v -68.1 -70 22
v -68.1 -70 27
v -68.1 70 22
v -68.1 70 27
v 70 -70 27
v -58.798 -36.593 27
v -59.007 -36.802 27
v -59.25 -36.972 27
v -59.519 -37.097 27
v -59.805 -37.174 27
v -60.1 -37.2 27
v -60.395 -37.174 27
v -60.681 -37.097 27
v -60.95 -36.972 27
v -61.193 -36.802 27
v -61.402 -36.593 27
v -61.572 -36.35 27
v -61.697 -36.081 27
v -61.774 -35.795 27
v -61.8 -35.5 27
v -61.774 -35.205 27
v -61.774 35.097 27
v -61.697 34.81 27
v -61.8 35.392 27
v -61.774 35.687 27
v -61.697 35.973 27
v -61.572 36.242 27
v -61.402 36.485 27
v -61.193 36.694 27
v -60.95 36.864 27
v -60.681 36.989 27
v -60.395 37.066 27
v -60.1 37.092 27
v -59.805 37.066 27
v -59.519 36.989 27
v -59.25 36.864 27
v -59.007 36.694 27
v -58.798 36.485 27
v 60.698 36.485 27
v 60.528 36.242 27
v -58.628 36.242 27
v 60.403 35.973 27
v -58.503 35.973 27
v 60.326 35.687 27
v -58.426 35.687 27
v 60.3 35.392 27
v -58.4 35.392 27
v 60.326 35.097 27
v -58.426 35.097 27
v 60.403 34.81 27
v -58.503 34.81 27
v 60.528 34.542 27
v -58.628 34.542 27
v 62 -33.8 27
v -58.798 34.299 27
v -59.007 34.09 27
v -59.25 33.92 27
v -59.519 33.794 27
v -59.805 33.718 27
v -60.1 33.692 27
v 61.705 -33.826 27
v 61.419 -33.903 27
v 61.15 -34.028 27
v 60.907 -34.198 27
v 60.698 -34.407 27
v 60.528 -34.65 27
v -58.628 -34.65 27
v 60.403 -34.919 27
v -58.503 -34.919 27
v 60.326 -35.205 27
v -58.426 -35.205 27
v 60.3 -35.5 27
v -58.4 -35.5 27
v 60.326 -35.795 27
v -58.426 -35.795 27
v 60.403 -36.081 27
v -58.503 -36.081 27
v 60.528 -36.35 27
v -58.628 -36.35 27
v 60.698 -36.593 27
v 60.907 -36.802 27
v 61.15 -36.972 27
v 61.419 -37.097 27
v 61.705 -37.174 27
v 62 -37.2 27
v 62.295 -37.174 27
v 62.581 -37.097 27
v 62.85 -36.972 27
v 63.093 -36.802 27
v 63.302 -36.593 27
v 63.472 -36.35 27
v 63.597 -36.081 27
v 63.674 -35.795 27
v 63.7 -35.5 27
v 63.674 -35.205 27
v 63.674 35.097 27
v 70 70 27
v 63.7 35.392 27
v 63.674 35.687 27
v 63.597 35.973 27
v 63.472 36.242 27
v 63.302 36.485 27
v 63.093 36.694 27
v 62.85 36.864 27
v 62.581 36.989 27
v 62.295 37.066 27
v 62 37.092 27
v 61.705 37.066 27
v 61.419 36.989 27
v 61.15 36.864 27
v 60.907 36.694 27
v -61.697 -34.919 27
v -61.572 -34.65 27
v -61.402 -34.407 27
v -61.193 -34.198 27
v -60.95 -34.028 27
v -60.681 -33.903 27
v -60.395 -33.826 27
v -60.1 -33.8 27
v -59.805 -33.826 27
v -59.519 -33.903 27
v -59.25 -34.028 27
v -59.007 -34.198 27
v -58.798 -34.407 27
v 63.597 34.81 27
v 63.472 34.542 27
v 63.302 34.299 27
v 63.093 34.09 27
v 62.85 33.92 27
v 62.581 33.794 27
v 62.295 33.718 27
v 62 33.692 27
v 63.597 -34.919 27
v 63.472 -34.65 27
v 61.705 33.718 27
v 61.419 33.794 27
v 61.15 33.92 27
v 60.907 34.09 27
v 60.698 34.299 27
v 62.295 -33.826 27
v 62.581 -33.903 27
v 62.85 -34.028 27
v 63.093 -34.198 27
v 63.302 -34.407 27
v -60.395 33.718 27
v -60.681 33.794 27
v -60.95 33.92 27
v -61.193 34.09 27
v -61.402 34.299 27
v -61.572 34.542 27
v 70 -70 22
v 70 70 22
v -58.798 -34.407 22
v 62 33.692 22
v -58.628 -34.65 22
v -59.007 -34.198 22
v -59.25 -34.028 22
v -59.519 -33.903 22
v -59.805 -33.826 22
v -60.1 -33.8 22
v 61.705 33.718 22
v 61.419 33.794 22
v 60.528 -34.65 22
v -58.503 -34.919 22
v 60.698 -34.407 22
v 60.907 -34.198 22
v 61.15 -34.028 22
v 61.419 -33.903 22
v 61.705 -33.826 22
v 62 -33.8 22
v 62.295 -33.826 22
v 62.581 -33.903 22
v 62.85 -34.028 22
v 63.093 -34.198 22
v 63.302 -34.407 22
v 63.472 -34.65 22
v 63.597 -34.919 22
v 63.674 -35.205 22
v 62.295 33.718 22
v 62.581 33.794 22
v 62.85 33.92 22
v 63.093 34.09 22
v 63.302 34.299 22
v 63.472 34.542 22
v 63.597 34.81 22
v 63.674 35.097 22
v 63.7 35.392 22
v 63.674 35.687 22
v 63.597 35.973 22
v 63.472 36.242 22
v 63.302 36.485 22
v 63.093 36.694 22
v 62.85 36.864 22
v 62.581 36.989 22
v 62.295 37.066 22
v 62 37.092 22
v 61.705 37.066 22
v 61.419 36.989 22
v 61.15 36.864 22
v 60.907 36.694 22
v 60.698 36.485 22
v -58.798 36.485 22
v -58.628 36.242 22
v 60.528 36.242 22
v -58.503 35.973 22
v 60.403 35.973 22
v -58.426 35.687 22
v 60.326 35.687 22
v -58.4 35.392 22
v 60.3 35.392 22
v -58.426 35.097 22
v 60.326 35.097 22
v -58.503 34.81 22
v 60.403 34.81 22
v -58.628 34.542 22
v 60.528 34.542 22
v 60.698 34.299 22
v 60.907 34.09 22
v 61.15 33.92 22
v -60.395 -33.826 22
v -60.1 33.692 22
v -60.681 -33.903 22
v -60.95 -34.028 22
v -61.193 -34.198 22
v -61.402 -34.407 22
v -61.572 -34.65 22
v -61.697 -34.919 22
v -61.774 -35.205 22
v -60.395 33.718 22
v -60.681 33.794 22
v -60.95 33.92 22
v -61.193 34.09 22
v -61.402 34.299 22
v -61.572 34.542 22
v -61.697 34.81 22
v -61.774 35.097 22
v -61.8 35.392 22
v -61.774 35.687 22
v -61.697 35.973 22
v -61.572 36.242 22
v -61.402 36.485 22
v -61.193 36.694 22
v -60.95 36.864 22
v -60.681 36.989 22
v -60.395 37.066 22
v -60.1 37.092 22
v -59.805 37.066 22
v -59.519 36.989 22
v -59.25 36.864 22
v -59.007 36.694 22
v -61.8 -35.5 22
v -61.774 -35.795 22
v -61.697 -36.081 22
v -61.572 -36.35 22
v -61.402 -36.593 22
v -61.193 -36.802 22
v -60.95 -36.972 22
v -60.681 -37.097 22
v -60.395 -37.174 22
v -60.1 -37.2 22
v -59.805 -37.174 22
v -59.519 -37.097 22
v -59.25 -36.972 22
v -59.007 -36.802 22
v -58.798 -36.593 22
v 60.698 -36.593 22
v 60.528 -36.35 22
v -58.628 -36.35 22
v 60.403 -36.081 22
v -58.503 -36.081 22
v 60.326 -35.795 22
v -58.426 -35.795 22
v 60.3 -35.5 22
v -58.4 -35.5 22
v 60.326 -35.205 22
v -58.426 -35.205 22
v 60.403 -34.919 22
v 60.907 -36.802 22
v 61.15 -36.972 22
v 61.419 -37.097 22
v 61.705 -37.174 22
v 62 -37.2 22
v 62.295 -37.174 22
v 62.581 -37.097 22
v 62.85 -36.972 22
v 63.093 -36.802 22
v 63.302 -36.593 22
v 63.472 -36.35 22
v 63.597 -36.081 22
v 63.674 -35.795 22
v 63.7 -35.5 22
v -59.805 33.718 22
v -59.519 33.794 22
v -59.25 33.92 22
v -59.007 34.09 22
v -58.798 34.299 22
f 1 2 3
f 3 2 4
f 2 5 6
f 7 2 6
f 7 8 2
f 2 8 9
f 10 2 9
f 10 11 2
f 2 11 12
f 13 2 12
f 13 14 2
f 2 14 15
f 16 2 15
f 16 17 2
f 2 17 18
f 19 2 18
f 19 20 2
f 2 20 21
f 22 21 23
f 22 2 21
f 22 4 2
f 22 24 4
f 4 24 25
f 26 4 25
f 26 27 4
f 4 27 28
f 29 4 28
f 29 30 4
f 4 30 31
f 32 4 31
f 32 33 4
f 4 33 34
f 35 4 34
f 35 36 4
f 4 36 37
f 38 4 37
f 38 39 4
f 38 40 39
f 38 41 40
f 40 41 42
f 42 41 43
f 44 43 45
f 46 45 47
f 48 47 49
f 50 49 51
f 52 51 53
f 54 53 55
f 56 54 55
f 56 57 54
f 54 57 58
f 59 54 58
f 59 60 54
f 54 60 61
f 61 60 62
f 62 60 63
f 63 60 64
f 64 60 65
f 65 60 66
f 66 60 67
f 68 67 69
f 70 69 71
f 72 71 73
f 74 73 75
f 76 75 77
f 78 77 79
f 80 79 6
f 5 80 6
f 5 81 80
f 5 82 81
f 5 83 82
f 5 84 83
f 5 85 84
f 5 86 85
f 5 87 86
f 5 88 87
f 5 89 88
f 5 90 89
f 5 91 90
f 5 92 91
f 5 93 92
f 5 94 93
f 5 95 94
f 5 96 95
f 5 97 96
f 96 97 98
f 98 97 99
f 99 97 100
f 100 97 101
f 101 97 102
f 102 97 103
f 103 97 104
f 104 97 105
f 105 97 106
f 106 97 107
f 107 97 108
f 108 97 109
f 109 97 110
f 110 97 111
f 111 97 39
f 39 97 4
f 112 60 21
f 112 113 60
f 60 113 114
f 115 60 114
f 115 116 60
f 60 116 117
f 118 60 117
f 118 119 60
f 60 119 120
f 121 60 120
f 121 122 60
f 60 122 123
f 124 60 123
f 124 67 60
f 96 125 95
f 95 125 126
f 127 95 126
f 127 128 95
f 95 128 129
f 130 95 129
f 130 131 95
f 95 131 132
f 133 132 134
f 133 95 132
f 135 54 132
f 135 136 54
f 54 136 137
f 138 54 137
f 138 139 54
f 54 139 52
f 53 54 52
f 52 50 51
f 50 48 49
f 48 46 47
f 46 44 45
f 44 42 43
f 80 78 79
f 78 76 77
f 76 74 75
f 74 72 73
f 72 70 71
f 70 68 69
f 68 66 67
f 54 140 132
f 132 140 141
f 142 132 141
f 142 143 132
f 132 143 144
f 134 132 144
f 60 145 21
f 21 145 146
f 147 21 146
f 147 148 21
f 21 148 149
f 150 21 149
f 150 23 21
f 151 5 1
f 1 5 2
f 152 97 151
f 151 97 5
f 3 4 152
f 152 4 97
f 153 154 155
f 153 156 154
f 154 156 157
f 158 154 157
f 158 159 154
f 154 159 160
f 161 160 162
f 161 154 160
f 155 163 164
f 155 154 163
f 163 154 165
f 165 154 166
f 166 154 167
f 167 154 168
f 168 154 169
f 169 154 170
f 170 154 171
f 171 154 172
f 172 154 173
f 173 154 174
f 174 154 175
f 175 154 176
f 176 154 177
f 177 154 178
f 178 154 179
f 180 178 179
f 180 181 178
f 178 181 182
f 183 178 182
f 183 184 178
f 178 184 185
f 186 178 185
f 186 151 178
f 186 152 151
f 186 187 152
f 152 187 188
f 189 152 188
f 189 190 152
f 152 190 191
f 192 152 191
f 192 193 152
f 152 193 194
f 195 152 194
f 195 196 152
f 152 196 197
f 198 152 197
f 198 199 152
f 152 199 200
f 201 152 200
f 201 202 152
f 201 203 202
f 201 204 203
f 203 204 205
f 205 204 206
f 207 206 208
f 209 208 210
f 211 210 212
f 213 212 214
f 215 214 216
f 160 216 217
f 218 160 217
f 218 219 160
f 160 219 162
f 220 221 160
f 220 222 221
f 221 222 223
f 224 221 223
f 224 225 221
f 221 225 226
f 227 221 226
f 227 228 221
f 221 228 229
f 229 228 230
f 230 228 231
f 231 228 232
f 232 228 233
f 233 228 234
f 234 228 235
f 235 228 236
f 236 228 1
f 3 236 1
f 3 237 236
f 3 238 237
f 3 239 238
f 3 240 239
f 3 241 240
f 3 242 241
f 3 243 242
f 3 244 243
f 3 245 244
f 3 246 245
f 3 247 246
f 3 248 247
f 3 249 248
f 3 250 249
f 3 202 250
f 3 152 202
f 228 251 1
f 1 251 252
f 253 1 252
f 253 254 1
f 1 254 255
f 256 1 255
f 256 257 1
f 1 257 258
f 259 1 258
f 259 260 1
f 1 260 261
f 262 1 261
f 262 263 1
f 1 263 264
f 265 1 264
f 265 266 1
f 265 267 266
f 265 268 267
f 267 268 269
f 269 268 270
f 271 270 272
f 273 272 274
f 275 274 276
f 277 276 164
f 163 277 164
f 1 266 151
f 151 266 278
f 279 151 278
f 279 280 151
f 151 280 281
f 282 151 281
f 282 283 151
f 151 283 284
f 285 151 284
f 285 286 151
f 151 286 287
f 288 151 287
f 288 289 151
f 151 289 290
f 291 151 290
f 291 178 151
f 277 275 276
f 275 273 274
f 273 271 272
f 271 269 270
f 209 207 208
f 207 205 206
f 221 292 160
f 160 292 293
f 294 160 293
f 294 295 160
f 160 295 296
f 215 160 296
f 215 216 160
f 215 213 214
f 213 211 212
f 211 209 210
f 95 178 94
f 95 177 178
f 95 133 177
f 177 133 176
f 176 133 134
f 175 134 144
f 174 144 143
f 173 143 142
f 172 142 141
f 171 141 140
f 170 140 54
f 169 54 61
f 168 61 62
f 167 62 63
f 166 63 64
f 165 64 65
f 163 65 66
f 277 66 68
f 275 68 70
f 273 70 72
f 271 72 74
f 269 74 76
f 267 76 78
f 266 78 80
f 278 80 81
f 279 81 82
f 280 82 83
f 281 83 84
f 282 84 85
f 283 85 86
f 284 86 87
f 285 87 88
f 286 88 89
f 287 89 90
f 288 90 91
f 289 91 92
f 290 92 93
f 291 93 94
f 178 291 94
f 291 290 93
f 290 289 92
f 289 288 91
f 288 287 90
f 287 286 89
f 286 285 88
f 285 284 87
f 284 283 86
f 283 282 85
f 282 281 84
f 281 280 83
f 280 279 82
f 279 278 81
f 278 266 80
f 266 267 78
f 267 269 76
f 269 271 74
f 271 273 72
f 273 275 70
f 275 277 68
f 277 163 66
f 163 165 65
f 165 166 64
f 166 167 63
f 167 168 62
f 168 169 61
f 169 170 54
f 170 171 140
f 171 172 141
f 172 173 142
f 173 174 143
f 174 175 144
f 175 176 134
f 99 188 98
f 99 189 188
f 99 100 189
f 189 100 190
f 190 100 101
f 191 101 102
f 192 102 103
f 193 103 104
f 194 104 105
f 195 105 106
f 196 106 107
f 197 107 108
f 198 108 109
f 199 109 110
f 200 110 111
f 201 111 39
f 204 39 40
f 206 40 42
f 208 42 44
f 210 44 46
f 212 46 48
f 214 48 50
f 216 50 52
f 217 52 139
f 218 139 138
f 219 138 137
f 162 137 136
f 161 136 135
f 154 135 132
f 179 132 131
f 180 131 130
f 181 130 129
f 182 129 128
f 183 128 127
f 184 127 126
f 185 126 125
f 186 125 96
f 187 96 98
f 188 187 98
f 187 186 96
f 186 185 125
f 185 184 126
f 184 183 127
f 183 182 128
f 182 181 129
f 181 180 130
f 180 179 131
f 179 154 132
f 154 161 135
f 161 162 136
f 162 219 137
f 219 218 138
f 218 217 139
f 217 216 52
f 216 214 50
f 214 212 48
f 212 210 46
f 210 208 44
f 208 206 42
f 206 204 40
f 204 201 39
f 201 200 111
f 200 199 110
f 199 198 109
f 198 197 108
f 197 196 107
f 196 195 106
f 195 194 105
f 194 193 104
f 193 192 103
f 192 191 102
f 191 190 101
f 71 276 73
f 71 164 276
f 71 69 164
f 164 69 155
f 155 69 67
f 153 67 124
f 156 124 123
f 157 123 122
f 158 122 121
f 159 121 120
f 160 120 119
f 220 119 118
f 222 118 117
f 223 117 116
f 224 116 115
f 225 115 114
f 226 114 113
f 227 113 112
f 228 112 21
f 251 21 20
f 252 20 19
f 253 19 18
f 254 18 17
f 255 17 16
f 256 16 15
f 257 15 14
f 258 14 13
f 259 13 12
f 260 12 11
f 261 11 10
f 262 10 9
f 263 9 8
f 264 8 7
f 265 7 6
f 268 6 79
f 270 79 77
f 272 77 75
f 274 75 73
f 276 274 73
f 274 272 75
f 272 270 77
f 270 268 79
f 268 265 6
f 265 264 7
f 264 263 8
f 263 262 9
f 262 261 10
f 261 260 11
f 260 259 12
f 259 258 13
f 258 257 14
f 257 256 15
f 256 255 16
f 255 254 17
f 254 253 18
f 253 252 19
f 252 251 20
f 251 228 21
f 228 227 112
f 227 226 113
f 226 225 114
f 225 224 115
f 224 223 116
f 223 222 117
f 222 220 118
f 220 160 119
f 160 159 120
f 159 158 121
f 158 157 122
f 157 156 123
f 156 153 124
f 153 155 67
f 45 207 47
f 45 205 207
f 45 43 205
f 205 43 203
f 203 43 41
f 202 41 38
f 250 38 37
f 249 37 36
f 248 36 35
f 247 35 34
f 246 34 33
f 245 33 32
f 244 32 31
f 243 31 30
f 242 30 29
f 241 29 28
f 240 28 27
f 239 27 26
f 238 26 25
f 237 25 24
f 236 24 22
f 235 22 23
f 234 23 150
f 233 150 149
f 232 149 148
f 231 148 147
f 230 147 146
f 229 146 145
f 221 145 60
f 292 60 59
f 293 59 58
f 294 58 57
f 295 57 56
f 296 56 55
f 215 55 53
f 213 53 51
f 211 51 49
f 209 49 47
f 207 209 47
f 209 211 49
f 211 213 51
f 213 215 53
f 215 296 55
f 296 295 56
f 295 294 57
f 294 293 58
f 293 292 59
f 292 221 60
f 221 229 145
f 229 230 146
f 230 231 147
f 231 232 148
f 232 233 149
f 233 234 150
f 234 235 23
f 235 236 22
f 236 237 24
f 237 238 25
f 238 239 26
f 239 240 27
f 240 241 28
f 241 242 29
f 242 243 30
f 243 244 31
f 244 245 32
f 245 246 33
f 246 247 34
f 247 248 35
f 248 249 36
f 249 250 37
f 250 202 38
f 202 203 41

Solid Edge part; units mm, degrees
sketch "Sketch1" plane through (0, 0, 22) normal (0, 0, 1) x (1, 0, 0)
  circle A0 centre (62, 35.3919) radius 1.7
  circle A1 centre (62, -35.5) radius 1.7
  circle A2 centre (-60.1, -35.5) radius 1.7
  line L0 (-68.1, -70) -> (70, -70)
  line L1 (70, -70) -> (70, 70)
  line L2 (70, 70) -> (-68.1, 70)
  line L3 (-68.1, 70) -> (-68.1, -70)
  circle A3 centre (-60.1, 35.3919) radius 1.7
  dimension "D1" = 8
  dimension "D2" = 8
  dimension "D3" = 140
  dimension "D4" = 3.4
extrude "ExtrudedProtrusion_1" add sketch "Sketch1" along normal blind 5
properties material "Steel"
